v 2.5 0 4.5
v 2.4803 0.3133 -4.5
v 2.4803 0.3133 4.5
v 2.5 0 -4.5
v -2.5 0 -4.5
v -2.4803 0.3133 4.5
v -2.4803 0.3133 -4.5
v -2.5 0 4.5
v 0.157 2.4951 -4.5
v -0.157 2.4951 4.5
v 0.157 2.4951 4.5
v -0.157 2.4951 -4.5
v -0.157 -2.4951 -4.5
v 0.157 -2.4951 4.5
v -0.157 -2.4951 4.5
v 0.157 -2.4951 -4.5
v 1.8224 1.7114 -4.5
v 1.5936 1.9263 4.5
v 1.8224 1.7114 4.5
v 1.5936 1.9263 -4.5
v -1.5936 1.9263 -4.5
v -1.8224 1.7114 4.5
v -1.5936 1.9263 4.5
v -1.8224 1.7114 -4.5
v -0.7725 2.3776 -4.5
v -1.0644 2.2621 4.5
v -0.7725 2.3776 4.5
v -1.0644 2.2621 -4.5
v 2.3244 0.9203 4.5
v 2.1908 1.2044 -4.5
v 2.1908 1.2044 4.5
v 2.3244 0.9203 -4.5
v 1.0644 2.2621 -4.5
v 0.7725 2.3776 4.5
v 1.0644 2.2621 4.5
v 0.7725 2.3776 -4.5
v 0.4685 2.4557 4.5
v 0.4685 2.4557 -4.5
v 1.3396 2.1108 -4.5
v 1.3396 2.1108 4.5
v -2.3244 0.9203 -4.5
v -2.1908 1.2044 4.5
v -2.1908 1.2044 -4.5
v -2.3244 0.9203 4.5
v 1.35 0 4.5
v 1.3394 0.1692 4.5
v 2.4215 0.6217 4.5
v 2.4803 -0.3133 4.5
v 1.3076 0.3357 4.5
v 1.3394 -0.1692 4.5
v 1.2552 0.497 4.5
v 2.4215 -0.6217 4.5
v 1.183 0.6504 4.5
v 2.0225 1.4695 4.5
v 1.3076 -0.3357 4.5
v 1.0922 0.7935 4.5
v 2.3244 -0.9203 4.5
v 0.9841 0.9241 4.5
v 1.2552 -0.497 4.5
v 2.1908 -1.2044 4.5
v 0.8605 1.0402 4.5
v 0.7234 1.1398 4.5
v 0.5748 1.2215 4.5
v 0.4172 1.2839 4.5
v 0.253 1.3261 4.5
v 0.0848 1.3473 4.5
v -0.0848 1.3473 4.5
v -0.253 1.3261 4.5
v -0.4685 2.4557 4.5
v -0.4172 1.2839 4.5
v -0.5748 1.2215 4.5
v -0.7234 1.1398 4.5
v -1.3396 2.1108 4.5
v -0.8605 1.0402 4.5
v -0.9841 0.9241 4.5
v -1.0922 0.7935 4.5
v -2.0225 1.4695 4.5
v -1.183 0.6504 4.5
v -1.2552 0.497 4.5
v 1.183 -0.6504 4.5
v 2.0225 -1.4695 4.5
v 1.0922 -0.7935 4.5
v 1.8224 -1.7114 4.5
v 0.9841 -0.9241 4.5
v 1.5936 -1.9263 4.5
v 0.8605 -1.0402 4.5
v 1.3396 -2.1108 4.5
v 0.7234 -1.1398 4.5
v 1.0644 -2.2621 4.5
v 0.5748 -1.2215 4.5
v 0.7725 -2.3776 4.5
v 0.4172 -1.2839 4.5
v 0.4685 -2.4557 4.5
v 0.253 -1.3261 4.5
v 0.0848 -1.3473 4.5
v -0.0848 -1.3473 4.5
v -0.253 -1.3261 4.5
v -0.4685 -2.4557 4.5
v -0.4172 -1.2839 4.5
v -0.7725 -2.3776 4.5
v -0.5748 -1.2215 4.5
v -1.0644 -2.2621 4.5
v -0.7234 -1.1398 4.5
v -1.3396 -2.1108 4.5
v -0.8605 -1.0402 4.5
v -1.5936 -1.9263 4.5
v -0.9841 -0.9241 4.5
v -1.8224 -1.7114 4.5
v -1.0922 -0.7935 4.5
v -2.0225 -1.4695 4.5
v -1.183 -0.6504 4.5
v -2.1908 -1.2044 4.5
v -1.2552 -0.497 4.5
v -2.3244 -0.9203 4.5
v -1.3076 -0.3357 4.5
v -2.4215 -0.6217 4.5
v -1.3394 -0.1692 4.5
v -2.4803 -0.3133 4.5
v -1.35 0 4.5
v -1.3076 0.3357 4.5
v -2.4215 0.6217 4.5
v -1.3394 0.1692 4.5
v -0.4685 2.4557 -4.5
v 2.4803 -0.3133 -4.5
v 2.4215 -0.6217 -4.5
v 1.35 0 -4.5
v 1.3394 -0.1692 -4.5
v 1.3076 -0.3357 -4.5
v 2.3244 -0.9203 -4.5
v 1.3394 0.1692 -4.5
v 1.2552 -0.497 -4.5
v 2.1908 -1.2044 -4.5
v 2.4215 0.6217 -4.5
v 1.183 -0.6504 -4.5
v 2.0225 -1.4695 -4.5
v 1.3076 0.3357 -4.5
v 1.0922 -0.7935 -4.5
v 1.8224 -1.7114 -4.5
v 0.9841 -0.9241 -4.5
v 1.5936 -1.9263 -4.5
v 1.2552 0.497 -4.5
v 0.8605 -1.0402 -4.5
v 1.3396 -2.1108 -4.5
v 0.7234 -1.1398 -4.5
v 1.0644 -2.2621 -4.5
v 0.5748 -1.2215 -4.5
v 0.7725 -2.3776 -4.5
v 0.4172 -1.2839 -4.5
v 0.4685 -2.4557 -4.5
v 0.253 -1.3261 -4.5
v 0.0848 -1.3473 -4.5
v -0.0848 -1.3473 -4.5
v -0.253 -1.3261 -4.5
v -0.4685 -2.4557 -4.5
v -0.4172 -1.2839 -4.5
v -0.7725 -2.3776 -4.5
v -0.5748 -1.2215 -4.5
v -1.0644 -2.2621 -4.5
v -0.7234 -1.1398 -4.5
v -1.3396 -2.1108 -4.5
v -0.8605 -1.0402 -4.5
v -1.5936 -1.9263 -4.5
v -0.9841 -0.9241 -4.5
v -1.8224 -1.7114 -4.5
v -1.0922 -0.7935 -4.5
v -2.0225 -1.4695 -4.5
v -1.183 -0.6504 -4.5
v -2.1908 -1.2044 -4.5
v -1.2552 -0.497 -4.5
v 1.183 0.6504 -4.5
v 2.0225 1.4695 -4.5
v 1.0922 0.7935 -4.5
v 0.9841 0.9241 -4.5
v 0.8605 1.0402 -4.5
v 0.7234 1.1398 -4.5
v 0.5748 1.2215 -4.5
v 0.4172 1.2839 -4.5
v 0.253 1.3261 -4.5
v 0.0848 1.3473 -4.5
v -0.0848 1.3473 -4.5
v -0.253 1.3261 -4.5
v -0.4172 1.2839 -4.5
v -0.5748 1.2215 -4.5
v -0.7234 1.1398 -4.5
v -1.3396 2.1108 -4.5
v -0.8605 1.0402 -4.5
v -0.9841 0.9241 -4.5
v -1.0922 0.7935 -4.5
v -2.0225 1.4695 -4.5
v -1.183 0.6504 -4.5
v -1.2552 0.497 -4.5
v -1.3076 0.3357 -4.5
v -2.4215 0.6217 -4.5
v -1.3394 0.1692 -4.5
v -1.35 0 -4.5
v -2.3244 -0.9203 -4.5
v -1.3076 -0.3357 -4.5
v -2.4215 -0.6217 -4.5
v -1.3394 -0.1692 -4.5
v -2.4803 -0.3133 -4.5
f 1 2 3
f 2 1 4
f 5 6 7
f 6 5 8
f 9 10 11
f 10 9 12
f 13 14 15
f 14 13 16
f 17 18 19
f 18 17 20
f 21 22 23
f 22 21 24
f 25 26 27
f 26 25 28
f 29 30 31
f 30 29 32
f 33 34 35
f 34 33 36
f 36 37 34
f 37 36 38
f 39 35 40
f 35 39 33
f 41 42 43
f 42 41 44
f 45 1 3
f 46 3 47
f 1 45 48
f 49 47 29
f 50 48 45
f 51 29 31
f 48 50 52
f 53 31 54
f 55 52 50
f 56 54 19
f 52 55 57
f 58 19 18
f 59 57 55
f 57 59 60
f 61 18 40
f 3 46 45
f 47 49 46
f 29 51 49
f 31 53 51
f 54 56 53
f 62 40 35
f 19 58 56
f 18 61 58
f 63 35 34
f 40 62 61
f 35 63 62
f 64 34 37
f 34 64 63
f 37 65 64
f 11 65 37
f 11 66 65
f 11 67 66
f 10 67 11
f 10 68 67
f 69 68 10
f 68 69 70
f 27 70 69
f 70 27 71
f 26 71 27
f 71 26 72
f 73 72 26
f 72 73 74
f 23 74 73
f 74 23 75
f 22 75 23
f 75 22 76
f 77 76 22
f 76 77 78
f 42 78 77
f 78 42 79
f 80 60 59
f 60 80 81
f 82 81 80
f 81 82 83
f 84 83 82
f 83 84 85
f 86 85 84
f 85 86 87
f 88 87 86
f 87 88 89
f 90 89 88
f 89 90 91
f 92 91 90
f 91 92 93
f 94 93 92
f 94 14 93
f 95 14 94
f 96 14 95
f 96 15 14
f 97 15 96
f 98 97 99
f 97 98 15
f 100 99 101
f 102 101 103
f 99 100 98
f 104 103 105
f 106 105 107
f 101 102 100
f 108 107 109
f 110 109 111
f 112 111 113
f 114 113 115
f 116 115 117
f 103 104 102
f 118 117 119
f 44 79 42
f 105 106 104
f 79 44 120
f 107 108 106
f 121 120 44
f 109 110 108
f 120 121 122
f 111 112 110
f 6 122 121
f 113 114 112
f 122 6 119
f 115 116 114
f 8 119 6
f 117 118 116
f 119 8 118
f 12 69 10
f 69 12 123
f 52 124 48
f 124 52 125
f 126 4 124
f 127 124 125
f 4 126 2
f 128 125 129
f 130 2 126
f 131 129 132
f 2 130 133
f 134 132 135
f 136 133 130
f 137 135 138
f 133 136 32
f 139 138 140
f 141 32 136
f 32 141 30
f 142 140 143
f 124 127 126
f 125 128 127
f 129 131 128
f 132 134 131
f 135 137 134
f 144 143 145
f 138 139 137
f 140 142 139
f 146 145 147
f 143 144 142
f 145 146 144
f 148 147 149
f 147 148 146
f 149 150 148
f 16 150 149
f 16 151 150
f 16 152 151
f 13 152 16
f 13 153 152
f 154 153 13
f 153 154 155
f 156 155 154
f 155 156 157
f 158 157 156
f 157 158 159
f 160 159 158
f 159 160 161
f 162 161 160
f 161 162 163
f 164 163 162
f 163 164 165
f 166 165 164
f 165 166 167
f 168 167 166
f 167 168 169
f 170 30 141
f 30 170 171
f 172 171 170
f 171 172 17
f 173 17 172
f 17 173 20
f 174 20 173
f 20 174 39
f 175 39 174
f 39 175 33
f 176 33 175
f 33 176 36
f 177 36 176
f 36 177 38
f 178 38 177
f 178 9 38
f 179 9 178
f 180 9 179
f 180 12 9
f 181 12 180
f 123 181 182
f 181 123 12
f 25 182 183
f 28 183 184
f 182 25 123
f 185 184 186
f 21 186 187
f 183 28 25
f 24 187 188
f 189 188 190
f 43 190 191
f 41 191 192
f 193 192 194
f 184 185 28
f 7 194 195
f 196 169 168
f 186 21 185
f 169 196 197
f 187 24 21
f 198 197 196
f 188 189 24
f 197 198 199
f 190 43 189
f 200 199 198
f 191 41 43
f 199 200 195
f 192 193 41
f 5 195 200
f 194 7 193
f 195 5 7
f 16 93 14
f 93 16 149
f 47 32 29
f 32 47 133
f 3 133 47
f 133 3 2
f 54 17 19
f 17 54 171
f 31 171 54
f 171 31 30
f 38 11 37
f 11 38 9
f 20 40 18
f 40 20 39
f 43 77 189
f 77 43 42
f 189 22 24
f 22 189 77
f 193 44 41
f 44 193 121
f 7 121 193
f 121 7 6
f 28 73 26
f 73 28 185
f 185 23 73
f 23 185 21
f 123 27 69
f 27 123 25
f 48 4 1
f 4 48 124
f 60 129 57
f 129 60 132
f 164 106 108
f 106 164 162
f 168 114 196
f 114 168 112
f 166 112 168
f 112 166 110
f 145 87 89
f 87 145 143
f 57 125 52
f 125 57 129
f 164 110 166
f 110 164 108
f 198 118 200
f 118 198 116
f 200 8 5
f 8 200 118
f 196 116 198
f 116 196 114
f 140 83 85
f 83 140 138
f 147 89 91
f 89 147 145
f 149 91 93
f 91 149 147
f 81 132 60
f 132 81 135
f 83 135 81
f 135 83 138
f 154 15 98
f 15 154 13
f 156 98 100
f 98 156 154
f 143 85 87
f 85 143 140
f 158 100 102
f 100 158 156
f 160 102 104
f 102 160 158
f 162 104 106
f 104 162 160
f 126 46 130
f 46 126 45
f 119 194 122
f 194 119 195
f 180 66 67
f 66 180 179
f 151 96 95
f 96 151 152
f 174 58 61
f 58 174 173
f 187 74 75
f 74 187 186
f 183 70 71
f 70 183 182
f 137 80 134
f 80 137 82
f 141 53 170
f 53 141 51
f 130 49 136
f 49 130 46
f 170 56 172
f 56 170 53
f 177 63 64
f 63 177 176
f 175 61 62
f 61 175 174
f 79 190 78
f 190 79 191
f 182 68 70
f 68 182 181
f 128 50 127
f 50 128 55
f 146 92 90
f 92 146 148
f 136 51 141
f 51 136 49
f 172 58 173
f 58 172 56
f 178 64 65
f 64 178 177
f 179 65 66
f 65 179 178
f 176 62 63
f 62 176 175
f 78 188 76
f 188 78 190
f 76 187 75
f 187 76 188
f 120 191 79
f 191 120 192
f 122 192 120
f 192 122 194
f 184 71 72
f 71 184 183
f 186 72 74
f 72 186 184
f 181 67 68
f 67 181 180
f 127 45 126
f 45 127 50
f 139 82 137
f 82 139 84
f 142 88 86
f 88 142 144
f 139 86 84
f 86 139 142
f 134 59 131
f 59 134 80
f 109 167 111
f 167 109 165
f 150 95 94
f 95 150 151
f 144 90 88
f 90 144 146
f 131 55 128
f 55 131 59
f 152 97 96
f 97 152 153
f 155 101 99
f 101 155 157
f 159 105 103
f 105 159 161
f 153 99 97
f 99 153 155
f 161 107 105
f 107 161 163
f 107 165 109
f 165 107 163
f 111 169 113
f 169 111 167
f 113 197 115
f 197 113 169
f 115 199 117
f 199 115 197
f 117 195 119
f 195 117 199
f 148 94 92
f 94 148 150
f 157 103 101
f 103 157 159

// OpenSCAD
$fn = 50;


difference() {
	union() {
		translate(v = [0, 0, -4.5000000000]) {
			cylinder(h = 9, r = 2.5000000000);
		}
	}
	union() {
		translate(v = [0, 0, -100.0000000000]) {
			cylinder(h = 200, r = 1.3500000000);
		}
	}
}
